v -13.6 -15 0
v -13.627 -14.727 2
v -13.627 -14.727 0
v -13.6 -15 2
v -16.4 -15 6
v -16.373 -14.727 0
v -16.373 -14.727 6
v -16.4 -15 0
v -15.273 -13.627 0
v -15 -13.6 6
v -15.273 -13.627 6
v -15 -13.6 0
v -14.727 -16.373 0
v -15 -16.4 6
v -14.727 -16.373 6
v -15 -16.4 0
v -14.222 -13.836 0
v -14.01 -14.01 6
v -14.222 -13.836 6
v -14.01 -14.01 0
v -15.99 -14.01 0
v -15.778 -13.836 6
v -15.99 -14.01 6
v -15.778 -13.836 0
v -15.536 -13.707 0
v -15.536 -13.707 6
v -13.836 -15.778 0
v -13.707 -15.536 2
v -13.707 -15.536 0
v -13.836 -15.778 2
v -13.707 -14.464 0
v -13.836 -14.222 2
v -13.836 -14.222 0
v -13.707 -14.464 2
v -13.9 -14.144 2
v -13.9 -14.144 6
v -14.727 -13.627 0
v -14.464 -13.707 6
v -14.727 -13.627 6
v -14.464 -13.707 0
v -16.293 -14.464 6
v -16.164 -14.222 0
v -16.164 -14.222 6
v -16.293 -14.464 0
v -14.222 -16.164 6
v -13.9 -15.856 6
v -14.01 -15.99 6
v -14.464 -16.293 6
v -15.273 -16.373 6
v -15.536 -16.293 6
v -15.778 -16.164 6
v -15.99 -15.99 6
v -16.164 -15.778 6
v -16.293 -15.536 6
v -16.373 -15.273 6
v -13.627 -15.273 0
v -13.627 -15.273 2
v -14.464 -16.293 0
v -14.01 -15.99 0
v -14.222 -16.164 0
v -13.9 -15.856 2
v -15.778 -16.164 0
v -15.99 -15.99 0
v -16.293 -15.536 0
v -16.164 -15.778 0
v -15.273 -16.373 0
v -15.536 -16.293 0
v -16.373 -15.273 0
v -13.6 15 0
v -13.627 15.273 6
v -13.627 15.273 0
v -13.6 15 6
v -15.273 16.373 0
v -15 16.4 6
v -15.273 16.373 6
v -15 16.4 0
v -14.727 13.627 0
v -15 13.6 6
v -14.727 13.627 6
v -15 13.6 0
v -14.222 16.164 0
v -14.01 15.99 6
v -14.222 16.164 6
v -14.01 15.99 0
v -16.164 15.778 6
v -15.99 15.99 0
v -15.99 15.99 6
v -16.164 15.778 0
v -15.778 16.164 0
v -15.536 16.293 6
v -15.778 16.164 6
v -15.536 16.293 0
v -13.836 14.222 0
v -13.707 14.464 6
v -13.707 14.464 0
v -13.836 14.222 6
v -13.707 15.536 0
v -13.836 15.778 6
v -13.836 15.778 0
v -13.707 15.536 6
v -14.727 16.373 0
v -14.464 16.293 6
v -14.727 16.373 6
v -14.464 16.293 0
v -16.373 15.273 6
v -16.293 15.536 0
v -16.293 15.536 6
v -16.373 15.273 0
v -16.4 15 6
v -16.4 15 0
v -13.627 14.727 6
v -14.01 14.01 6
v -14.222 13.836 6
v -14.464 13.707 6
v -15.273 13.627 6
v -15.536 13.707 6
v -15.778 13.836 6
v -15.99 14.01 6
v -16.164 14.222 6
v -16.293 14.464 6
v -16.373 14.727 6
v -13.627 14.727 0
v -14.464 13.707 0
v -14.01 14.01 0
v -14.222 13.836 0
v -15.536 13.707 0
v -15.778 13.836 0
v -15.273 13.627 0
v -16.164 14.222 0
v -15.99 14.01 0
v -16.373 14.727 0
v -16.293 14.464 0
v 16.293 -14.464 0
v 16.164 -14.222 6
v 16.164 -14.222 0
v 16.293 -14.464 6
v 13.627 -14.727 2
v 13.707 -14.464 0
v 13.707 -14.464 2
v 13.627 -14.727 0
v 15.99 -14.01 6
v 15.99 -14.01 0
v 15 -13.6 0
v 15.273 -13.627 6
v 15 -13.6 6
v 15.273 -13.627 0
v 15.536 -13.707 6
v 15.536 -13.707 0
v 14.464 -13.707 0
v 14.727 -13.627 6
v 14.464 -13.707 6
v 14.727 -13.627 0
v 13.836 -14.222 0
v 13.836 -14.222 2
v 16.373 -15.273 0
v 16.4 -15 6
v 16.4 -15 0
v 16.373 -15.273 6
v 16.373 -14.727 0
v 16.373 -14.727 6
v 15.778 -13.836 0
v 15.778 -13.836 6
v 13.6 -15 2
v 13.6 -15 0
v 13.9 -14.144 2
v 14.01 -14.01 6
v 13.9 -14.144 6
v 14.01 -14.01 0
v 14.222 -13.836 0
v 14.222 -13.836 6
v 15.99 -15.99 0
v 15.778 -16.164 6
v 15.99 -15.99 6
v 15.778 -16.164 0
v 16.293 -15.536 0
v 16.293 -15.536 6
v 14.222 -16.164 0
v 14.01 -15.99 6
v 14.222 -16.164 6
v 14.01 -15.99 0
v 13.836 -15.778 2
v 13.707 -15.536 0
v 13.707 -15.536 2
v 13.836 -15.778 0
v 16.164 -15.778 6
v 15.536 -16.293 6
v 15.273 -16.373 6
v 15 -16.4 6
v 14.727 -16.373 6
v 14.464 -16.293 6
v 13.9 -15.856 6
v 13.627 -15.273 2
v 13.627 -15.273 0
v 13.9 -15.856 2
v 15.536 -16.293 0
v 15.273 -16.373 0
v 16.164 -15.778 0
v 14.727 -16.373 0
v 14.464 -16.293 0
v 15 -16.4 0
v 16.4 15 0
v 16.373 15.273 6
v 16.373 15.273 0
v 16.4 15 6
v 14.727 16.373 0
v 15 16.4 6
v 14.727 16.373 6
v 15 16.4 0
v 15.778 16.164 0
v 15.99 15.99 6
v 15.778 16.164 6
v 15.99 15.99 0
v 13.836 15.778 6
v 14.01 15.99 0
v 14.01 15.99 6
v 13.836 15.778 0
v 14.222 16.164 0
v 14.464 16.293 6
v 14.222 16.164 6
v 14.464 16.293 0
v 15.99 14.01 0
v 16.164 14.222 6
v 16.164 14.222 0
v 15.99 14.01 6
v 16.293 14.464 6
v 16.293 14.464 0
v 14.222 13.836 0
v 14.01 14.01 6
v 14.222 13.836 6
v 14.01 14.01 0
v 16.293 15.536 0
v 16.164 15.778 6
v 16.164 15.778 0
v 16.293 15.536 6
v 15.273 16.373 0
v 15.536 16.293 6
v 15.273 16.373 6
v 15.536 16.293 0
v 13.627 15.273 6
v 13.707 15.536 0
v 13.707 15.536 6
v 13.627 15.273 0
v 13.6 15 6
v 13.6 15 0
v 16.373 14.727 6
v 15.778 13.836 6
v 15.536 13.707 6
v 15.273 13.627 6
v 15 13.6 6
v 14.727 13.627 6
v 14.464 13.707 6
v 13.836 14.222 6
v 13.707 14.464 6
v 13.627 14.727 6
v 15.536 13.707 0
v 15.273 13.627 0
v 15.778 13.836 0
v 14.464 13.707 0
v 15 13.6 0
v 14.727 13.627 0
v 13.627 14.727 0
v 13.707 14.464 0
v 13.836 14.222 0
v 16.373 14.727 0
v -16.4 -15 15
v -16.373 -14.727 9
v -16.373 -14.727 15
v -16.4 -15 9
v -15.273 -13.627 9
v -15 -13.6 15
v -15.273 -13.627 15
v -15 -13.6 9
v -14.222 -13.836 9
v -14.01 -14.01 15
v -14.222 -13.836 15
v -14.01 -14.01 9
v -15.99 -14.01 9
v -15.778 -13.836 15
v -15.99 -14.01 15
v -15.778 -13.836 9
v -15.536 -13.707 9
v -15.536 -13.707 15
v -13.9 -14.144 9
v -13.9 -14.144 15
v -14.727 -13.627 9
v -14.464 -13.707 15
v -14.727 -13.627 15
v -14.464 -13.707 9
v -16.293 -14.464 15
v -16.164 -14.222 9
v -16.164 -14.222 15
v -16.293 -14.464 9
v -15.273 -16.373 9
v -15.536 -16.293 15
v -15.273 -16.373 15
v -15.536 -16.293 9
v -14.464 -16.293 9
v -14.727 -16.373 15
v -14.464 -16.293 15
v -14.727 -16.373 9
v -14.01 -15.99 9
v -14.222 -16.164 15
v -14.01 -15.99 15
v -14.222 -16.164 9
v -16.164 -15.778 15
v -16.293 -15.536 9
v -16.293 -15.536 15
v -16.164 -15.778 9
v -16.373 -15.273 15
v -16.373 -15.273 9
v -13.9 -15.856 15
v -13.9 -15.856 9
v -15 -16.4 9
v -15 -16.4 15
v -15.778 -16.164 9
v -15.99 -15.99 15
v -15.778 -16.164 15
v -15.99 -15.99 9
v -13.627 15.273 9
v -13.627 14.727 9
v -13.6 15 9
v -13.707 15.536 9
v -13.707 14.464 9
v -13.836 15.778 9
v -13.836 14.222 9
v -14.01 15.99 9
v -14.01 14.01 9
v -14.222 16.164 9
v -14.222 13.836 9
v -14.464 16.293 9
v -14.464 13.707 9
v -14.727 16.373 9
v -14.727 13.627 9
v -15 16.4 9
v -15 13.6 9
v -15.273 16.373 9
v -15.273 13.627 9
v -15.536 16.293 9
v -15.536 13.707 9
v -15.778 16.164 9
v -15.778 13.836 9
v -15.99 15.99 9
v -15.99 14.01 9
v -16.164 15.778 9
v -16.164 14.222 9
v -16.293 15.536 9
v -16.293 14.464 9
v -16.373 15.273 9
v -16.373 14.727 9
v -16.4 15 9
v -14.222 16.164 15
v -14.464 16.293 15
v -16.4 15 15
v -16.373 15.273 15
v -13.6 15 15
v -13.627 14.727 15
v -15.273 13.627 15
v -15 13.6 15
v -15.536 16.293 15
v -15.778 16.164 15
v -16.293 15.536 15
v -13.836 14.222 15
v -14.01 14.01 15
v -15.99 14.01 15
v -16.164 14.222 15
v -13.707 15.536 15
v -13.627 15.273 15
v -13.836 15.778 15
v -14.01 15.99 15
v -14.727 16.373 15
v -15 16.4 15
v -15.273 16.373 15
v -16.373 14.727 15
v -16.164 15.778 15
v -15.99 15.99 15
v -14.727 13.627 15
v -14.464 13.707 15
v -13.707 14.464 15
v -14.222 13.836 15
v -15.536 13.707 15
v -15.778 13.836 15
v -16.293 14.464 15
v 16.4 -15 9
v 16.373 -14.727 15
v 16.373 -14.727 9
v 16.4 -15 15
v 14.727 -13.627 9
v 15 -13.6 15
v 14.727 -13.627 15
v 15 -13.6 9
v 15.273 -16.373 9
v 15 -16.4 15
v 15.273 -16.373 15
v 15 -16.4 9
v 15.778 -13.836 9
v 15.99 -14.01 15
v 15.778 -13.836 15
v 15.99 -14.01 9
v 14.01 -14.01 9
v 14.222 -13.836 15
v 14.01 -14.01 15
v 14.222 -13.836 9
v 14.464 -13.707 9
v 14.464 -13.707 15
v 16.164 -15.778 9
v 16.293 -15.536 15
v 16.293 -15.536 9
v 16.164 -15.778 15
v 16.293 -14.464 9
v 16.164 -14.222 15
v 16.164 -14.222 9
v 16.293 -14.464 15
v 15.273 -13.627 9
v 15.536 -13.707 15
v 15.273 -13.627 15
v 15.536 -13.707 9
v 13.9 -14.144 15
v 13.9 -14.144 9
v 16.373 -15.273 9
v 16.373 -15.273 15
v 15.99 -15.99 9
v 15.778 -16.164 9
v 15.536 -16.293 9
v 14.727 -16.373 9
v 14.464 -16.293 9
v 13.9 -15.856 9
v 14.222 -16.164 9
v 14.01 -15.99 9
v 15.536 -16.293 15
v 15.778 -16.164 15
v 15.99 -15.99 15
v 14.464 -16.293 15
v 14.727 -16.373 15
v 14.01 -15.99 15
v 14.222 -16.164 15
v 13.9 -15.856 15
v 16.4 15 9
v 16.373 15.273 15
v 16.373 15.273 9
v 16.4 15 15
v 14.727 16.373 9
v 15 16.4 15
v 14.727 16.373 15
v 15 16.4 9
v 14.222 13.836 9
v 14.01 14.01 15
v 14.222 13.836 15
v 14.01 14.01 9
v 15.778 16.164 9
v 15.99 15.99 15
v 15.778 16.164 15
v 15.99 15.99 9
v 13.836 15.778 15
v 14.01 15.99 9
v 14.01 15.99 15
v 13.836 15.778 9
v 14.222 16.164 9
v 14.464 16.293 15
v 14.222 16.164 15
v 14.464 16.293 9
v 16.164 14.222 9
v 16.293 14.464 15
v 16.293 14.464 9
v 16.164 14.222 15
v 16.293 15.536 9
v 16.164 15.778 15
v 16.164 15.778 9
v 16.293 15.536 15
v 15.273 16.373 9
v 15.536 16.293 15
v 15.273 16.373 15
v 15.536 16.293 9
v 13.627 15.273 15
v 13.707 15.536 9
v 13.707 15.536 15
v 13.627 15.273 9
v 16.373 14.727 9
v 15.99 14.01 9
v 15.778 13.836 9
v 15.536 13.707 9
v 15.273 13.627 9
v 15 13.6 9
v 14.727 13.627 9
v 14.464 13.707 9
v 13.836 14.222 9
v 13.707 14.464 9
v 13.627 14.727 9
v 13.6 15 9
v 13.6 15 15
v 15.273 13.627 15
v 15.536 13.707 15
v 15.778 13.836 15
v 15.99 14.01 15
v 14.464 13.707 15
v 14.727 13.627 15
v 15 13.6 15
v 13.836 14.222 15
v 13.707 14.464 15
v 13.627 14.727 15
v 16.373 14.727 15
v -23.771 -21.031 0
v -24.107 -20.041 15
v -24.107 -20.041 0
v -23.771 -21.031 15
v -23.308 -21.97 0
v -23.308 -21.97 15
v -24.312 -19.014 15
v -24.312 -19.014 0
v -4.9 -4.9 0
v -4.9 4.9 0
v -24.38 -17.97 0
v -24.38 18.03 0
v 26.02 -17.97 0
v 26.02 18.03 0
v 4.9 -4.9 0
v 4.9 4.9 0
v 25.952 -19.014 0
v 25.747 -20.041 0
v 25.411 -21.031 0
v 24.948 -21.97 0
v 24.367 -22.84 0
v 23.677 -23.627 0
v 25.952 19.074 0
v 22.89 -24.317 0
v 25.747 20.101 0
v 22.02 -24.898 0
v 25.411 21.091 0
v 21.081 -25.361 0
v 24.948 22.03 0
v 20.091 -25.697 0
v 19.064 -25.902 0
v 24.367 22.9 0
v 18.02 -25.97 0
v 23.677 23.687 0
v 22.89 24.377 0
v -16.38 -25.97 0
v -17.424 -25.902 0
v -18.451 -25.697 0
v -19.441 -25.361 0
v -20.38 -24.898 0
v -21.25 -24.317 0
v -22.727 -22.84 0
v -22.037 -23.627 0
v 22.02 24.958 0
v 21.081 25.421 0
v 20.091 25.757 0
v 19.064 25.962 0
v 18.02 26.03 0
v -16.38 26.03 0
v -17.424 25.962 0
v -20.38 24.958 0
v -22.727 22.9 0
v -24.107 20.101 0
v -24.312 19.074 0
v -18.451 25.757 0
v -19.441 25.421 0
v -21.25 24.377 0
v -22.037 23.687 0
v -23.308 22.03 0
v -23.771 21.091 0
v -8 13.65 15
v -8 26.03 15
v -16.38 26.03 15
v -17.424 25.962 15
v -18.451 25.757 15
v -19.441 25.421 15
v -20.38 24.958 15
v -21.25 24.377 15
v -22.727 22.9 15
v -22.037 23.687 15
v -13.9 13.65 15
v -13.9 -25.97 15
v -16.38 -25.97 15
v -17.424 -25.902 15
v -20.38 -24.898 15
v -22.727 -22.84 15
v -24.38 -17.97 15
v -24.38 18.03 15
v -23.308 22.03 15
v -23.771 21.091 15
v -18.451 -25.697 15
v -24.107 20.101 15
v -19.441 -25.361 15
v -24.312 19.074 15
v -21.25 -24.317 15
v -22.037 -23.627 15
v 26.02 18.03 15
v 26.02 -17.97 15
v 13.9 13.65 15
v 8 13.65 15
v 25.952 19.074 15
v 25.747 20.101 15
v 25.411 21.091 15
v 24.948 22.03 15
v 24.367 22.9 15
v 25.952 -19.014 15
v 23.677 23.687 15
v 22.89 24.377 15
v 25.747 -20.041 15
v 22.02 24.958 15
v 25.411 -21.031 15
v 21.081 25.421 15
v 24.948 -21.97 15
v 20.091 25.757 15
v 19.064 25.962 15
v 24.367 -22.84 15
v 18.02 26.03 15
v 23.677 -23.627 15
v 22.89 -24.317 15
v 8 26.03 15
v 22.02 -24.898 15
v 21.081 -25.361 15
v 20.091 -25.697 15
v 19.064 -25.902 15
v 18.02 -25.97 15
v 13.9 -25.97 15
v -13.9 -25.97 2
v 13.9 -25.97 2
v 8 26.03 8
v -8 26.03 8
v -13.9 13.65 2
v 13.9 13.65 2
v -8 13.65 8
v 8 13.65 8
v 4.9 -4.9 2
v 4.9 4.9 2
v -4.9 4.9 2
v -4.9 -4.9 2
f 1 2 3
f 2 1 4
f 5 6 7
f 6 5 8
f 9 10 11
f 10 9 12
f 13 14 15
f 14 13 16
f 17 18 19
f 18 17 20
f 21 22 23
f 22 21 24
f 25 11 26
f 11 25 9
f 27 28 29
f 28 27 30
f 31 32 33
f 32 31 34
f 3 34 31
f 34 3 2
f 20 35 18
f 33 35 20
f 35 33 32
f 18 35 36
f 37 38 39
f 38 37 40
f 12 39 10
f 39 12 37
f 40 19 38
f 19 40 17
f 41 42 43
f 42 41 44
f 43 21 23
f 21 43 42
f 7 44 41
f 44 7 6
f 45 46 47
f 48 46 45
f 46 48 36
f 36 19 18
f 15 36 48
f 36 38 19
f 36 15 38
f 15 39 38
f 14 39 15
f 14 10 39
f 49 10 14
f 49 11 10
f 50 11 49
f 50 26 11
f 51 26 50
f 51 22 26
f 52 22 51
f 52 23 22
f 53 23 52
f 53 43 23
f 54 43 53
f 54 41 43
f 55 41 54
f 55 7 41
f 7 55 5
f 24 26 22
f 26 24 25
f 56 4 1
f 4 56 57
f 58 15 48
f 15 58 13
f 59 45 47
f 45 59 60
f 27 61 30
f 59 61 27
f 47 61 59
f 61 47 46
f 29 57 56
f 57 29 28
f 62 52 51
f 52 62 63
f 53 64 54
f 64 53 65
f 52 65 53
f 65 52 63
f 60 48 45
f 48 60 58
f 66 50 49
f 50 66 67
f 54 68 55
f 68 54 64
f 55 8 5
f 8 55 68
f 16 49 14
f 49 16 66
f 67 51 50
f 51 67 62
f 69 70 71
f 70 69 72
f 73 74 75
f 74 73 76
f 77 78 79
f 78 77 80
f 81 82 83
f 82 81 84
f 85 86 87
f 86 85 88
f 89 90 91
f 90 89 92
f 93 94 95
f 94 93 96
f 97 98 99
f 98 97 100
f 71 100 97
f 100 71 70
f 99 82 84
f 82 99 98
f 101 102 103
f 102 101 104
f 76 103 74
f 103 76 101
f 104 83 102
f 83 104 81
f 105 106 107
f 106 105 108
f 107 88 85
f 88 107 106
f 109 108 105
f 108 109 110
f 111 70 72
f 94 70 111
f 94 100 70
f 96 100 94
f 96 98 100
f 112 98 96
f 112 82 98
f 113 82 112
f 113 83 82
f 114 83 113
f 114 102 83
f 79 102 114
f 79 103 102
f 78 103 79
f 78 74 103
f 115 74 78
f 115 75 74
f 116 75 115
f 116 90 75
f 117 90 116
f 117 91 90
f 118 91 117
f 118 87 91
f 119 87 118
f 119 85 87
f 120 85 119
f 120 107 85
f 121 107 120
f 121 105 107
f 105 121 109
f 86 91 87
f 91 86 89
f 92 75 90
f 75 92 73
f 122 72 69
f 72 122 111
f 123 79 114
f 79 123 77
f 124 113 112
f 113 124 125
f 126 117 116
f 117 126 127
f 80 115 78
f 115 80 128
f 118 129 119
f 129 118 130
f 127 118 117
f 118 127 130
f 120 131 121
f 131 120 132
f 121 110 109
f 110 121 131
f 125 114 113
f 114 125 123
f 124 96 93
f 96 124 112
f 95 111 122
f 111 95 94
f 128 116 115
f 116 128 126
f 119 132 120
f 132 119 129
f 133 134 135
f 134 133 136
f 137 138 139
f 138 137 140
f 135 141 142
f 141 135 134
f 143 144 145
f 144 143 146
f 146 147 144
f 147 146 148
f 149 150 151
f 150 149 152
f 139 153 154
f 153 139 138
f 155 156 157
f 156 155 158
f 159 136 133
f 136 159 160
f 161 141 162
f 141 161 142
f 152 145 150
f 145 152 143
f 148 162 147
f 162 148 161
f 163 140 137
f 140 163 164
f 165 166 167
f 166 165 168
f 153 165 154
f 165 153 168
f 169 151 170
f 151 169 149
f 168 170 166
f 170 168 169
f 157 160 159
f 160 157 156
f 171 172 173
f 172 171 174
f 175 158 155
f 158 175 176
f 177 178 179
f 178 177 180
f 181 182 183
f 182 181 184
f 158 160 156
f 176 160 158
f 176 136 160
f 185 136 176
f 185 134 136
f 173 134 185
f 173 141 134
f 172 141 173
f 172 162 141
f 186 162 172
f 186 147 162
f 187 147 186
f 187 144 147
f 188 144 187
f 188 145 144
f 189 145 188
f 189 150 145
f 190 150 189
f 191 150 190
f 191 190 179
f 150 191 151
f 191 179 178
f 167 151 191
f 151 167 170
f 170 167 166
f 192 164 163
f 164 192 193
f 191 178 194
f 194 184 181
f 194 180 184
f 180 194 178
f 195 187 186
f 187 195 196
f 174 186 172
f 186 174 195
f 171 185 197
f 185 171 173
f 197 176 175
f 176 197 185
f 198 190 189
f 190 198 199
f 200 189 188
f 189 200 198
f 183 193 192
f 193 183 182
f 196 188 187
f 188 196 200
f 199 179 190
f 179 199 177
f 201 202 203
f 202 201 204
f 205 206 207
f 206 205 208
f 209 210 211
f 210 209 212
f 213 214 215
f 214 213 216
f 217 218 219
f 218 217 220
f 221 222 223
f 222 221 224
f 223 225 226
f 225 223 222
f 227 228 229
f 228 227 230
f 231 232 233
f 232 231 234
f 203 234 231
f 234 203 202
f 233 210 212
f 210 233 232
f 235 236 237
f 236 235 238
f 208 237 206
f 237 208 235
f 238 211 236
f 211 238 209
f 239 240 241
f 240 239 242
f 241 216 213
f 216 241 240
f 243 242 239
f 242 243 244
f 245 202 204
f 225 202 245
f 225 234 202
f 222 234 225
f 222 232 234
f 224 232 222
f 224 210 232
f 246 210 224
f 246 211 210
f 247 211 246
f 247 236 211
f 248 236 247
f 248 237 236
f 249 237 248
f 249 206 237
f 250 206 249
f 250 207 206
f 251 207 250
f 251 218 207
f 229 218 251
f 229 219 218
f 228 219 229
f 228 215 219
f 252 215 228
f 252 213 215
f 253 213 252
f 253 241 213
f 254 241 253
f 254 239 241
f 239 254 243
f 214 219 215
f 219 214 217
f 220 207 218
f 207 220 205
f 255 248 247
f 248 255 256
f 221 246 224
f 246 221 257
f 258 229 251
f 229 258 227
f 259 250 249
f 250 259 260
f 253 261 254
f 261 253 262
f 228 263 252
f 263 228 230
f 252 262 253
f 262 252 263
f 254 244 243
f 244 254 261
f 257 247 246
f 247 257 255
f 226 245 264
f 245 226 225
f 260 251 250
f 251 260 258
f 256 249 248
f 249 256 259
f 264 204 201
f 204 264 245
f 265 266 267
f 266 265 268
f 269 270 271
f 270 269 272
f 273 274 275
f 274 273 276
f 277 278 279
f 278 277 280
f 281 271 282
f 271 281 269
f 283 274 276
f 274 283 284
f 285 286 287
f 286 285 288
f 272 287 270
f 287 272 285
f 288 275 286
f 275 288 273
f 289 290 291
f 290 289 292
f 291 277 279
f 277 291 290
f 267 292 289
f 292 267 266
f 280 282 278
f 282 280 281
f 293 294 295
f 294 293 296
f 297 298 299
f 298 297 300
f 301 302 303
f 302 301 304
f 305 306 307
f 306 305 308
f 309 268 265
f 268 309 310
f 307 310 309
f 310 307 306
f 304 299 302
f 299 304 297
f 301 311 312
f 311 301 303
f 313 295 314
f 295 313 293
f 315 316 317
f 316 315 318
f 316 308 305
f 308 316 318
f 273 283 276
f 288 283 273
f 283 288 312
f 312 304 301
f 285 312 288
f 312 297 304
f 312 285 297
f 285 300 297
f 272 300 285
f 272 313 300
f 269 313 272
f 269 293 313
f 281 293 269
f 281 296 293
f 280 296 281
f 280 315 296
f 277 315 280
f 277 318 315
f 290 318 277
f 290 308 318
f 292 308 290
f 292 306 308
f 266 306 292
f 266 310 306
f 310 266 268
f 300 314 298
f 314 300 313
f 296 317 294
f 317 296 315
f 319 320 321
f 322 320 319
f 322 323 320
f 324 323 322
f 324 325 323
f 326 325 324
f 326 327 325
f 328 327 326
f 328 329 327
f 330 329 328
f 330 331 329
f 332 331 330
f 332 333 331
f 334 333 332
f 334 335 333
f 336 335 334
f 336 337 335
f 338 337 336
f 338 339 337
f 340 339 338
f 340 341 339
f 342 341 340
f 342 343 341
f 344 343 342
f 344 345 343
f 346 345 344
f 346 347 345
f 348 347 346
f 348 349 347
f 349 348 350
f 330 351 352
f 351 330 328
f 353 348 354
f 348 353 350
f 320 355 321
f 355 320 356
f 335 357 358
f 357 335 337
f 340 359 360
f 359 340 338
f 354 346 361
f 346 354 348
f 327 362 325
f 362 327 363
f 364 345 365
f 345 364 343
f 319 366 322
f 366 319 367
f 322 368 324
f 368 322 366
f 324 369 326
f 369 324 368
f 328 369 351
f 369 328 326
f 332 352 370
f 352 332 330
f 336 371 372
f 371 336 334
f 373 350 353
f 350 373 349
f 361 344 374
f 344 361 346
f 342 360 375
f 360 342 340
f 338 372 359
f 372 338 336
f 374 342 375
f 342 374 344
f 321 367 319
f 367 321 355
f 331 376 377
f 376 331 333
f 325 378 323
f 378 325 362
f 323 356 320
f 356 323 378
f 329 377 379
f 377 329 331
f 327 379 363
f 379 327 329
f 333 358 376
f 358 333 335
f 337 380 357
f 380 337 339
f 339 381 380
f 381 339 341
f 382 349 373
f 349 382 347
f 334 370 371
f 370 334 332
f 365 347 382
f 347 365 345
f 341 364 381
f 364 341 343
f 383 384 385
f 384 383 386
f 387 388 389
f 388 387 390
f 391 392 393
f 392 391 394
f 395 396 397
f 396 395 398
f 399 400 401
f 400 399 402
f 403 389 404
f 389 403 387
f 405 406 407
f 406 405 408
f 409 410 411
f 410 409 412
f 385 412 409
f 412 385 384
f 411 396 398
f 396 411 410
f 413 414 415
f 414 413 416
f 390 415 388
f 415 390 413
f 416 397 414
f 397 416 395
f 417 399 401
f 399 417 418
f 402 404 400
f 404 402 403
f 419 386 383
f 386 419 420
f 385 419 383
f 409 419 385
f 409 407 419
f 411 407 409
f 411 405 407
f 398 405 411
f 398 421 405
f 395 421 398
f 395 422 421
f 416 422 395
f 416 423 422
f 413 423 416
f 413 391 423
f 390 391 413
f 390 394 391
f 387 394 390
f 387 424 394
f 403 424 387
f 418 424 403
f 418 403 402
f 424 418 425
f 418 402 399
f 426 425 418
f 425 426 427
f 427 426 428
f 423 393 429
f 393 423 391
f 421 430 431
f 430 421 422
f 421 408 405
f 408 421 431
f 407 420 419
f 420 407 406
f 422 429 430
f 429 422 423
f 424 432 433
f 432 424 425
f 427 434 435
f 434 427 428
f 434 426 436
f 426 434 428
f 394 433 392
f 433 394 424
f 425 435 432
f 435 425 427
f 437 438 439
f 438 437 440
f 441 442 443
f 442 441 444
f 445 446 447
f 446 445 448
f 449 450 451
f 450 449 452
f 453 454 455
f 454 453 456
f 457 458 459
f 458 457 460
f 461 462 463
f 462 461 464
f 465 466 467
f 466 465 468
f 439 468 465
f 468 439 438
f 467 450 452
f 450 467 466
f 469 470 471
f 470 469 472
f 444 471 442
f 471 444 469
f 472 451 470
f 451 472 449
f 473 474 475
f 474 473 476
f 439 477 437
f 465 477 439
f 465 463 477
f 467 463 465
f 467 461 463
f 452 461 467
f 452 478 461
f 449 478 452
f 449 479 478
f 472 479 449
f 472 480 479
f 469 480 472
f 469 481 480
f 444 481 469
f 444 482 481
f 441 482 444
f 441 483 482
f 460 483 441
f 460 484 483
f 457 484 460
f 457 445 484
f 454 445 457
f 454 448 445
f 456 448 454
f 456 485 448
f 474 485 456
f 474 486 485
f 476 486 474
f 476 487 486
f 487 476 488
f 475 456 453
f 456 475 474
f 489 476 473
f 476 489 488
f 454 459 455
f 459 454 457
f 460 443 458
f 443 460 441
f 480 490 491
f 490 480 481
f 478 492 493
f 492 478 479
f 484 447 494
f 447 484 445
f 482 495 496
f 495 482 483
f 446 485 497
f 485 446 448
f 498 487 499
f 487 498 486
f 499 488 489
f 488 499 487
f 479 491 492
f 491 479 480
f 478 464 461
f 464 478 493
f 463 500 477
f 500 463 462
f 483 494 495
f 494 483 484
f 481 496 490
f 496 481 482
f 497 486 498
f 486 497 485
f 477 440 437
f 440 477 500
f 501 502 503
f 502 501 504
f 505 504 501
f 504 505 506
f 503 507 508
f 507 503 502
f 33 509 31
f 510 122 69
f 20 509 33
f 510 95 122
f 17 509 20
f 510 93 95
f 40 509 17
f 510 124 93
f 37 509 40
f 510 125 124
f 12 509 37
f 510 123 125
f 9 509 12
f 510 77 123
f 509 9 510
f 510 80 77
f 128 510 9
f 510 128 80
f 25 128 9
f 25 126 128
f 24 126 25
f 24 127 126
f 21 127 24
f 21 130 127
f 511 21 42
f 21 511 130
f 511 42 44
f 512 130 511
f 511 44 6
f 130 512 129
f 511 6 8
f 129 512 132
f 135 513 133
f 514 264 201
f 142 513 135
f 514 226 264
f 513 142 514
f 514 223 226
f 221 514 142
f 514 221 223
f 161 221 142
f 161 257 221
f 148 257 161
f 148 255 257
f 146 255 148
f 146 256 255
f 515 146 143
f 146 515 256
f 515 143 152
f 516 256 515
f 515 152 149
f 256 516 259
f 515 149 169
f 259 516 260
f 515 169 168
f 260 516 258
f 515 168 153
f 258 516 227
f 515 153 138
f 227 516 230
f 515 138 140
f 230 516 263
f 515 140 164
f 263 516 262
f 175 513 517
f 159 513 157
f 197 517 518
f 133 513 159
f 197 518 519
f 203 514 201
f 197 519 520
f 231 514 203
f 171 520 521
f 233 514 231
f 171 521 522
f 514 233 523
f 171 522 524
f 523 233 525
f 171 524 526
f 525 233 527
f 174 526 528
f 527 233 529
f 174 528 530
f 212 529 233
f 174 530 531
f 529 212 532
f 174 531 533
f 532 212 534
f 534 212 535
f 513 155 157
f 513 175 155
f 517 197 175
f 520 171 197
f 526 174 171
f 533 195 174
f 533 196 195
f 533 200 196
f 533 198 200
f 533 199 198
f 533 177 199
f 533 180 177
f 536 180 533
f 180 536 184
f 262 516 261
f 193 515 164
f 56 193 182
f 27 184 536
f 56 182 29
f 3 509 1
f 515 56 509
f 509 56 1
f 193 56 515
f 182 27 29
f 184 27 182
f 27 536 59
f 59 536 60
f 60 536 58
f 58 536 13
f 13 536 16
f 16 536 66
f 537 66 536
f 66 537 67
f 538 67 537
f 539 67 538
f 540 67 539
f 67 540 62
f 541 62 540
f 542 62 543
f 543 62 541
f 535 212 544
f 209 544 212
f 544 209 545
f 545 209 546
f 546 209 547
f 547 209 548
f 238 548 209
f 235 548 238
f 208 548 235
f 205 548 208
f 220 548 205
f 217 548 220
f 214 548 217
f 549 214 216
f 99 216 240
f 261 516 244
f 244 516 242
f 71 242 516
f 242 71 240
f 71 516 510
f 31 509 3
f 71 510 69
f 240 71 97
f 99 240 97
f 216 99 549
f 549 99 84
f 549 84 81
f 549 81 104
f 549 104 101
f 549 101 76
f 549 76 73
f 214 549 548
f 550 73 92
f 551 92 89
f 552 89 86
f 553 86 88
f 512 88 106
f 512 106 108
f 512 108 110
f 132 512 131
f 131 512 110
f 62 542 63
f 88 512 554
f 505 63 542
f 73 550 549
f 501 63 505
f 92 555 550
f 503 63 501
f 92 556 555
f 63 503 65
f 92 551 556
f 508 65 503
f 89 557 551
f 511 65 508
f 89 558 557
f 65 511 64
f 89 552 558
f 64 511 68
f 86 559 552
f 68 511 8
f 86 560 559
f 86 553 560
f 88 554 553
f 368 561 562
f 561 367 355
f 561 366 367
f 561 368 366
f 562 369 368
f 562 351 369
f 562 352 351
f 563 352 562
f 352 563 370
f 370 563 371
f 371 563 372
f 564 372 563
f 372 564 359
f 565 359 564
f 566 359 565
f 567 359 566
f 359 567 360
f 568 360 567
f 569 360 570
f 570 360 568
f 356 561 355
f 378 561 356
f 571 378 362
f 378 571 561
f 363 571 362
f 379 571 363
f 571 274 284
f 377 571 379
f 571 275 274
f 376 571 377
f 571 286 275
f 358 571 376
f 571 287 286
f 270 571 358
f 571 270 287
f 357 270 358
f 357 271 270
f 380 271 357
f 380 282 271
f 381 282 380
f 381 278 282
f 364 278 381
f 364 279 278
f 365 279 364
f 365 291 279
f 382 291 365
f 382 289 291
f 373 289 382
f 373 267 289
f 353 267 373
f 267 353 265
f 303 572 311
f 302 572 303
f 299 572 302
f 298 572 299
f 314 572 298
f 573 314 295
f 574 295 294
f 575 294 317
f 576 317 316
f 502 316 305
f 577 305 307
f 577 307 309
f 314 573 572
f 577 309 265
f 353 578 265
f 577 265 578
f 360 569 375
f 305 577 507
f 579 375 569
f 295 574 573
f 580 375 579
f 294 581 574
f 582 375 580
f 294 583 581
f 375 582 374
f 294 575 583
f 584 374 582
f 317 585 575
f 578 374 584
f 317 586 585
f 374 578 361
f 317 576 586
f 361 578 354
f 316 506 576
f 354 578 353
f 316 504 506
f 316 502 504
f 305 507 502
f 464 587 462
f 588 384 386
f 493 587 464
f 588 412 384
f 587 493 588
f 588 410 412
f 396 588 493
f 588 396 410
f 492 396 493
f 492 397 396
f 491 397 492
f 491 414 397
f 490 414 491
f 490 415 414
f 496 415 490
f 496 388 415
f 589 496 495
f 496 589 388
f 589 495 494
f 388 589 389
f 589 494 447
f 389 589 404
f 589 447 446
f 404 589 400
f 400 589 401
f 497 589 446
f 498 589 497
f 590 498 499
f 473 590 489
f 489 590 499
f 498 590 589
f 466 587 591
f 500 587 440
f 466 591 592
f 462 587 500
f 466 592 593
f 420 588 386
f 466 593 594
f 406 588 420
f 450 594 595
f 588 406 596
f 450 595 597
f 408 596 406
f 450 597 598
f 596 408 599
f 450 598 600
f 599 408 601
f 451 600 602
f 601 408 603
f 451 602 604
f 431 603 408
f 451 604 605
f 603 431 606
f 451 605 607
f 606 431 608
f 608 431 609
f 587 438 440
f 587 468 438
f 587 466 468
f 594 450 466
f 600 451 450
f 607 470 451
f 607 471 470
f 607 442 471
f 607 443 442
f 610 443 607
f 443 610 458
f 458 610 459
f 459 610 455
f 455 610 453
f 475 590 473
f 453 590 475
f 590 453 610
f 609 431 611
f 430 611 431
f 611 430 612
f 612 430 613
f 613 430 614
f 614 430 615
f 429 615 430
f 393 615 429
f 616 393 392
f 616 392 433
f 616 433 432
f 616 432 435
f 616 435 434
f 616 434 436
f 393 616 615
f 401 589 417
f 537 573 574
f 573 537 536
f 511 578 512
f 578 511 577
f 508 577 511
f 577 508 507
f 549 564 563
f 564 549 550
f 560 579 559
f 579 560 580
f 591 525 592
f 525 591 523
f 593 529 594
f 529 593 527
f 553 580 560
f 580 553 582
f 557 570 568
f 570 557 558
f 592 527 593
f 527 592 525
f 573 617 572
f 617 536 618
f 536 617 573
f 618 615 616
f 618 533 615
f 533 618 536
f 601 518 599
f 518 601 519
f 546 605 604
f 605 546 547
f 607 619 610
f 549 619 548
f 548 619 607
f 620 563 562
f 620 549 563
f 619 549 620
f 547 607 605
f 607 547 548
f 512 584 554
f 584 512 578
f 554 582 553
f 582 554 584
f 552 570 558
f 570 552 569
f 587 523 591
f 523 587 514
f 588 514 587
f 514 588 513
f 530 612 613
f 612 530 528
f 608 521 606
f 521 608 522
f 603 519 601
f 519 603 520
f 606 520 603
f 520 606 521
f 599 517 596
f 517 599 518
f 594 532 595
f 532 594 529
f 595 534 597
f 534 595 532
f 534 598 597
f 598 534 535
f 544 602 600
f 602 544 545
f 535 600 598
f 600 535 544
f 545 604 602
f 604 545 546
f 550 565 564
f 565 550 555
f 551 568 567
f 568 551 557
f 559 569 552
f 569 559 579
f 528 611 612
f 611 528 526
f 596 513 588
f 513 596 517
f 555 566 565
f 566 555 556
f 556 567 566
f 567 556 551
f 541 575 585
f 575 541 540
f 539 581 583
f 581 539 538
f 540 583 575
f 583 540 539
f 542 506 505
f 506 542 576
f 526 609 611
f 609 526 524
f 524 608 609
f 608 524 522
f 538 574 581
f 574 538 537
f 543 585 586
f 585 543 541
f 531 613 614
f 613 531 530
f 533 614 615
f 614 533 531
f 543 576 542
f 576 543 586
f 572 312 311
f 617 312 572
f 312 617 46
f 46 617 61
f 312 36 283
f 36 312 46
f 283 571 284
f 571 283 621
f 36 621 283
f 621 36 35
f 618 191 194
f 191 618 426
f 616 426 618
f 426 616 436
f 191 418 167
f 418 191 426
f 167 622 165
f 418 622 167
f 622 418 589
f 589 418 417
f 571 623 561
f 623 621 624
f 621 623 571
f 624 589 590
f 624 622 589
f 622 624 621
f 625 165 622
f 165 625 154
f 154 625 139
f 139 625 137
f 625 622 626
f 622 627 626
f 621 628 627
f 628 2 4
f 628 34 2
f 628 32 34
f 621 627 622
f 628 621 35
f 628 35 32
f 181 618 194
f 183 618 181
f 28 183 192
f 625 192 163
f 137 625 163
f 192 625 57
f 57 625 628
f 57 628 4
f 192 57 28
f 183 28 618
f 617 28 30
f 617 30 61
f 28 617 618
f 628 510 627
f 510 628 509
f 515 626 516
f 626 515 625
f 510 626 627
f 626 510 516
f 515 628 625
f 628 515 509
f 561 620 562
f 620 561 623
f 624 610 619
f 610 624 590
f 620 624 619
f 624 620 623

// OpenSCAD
// file: ../components/top_cap_esp32cam_001.scad
// ============================================================================
// top_cap_esp32cam_001.scad — NẮP ADAPTER cho biến thể ESP32-CAM (CHI TIẾT IN)
// ----------------------------------------------------------------------------
// Thay cho base Matchboxscope khi dùng ESP32-CAM thay XIAO ESP32-S3.
// KHÔNG ảnh hưởng bản gốc — CÙNG giao diện bích: 4 lỗ M3 bước vuông 30×30,
// tâm = trục quang → tháo base XIAO ra, bắt nắp này vào là chạy.
//
// Kết cấu (dày 15, footprint = outline lid Matchboxscope 50.4×52):
//  - HỐC board 27.4×40.9 sâu 13 từ mặt trên: board camera úp xuống, LENS TRÙNG
//    TRỤC QUANG (hốc dịch −e32_lens_off theo Y để bù lens lệch tâm), pin header
//    chĩa lên CHÌM HẲN trong hốc (13 > 1.6 + 11).
//  - Sàn 2mm: lỗ vuông 10.4 xuyên sàn cho khối camera + lens thò xuống lỗ Ø24
//    của bích (lens tự vặn chỉnh nét — cự ly tới nước ~36mm thay vì 40).
//  - 4 lỗ tự-ren M3 Ø2.8 MÙ hai đầu, cùng trục (dưới sâu 6: vít bích từ dưới;
//    trên sâu 6: vít kẹp LID MATCHBOXSCOPE IN SẴN — lid 50.42×52×2, 4 lỗ Ø3.2
//    đúng pattern, đo trimesh — đậy hốc làm nắp kẹp/chắn bụi). Vách ngăn giữa 3mm.
//  - Khe luồn dây jumper ở thành +Y (rộng 16, từ z=8 lên mặt trên) — dán băng
//    đen khi chụp để kín sáng.
//  ⚠️ Lỗ M3 tại ±15 chỉ cách mép hốc 13.7 đúng 0.1mm → ren vít có thể sượt nhẹ
//    vào thành hốc tại 4 điểm — chấp nhận (board 27.0 vẫn lọt, dũa nhẹ nếu kẹt).
// Gốc cục bộ: trục quang = Z, mặt ĐÁY (áp bích ống) = z=0. Assembly nâng lên z=46.
// ============================================================================
include <../constants.scad>

EPS = 0.05;
LID_STL  = "../../base/Assembly_Matchboxscope_injectionmolded_xiao_IM_Matchboxscope_base_xiao_lid_10.stl";
LID_ZMIN = -34.03373;                 // đo trimesh 2026-07-08
outline_off = [0.82, 0.03];           // tâm outline lid lệch trục quang (như base)

module top_cap_esp32cam() {
    pocket_w = e32_pcb_w + 2*e32_clr; // 27.8
    pocket_l = e32_pcb_l + 2*e32_clr; // 41.3
    color(col_plastic) difference() {
        // Thân: rounded-rect footprint lid 50.4×52, r góc 8
        translate([outline_off[0], outline_off[1], 0])
            linear_extrude(cap_e32_t)
                hull() for (sx = [1,-1], sy = [1,-1])
                    translate([sx*(50.4/2 - 8), sy*(52/2 - 8)]) circle(r = 8, $fn = 48);
        // Hốc board (tâm dịch −lens_off theo Y để lens về trục quang)
        translate([-pocket_w/2, -pocket_l/2 - e32_lens_off, cap_e32_t - cap_e32_pocket])
            cube([pocket_w, pocket_l, cap_e32_pocket + EPS]);
        // Lỗ vuông xuyên sàn cho khối camera (tâm = trục quang)
        translate([-(e32_cam_blk + 2*e32_clr)/2, -(e32_cam_blk + 2*e32_clr)/2, -EPS])
            cube([e32_cam_blk + 2*e32_clr, e32_cam_blk + 2*e32_clr, 2 + 2*EPS]);
        // 4 lỗ tự-ren M3 mù ĐÁY (vít bích từ dưới lên)
        m3_mount_pattern()
            translate([0, 0, -EPS]) cylinder(d = mount_hole_base_d, h = cap_e32_screw + EPS, $fn = 32);
        // 4 lỗ tự-ren M3 mù ĐỈNH (vít kẹp lid từ trên xuống)
        m3_mount_pattern()
            translate([0, 0, cap_e32_t - cap_e32_screw]) cylinder(d = mount_hole_base_d, h = cap_e32_screw + EPS, $fn = 32);
        // Khe luồn dây +Y
        translate([-8, 12, 8]) cube([16, 20, cap_e32_t - 8 + EPS]);
    }
}

// Lid Matchboxscope IN SẴN làm nắp kẹp (mock import — không in lại)
module lid_ref() {
    color(col_plastic)
        translate([-mount_center[0], -mount_center[1], cap_e32_t - LID_ZMIN])
            import(LID_STL, convexity = 4);
}

// Xem lẻ: nắp + lid kẹp (ghost); board mock xem trong assembly (cam_variant=1)
top_cap_esp32cam();
%lid_ref();
// main file
// print_top_cap_esp32cam.scad — Nắp adapter biến thể ESP32-CAM (1 chi tiết in).
// CHỈ in khi dùng ESP32-CAM thay XIAO (baseline dùng base Matchboxscope in sẵn).
// In: mặt ĐÁY xuống bàn (hốc ngửa lên — không cần support; lỗ vuông sàn bridge ngắn).
// Sau in: thử board vào hốc (khe +0.4), dũa nhẹ nếu 4 điểm ren M3 sượt thành hốc.
include <../constants.scad>
use <../components/top_cap_esp32cam_001.scad>

top_cap_esp32cam();
